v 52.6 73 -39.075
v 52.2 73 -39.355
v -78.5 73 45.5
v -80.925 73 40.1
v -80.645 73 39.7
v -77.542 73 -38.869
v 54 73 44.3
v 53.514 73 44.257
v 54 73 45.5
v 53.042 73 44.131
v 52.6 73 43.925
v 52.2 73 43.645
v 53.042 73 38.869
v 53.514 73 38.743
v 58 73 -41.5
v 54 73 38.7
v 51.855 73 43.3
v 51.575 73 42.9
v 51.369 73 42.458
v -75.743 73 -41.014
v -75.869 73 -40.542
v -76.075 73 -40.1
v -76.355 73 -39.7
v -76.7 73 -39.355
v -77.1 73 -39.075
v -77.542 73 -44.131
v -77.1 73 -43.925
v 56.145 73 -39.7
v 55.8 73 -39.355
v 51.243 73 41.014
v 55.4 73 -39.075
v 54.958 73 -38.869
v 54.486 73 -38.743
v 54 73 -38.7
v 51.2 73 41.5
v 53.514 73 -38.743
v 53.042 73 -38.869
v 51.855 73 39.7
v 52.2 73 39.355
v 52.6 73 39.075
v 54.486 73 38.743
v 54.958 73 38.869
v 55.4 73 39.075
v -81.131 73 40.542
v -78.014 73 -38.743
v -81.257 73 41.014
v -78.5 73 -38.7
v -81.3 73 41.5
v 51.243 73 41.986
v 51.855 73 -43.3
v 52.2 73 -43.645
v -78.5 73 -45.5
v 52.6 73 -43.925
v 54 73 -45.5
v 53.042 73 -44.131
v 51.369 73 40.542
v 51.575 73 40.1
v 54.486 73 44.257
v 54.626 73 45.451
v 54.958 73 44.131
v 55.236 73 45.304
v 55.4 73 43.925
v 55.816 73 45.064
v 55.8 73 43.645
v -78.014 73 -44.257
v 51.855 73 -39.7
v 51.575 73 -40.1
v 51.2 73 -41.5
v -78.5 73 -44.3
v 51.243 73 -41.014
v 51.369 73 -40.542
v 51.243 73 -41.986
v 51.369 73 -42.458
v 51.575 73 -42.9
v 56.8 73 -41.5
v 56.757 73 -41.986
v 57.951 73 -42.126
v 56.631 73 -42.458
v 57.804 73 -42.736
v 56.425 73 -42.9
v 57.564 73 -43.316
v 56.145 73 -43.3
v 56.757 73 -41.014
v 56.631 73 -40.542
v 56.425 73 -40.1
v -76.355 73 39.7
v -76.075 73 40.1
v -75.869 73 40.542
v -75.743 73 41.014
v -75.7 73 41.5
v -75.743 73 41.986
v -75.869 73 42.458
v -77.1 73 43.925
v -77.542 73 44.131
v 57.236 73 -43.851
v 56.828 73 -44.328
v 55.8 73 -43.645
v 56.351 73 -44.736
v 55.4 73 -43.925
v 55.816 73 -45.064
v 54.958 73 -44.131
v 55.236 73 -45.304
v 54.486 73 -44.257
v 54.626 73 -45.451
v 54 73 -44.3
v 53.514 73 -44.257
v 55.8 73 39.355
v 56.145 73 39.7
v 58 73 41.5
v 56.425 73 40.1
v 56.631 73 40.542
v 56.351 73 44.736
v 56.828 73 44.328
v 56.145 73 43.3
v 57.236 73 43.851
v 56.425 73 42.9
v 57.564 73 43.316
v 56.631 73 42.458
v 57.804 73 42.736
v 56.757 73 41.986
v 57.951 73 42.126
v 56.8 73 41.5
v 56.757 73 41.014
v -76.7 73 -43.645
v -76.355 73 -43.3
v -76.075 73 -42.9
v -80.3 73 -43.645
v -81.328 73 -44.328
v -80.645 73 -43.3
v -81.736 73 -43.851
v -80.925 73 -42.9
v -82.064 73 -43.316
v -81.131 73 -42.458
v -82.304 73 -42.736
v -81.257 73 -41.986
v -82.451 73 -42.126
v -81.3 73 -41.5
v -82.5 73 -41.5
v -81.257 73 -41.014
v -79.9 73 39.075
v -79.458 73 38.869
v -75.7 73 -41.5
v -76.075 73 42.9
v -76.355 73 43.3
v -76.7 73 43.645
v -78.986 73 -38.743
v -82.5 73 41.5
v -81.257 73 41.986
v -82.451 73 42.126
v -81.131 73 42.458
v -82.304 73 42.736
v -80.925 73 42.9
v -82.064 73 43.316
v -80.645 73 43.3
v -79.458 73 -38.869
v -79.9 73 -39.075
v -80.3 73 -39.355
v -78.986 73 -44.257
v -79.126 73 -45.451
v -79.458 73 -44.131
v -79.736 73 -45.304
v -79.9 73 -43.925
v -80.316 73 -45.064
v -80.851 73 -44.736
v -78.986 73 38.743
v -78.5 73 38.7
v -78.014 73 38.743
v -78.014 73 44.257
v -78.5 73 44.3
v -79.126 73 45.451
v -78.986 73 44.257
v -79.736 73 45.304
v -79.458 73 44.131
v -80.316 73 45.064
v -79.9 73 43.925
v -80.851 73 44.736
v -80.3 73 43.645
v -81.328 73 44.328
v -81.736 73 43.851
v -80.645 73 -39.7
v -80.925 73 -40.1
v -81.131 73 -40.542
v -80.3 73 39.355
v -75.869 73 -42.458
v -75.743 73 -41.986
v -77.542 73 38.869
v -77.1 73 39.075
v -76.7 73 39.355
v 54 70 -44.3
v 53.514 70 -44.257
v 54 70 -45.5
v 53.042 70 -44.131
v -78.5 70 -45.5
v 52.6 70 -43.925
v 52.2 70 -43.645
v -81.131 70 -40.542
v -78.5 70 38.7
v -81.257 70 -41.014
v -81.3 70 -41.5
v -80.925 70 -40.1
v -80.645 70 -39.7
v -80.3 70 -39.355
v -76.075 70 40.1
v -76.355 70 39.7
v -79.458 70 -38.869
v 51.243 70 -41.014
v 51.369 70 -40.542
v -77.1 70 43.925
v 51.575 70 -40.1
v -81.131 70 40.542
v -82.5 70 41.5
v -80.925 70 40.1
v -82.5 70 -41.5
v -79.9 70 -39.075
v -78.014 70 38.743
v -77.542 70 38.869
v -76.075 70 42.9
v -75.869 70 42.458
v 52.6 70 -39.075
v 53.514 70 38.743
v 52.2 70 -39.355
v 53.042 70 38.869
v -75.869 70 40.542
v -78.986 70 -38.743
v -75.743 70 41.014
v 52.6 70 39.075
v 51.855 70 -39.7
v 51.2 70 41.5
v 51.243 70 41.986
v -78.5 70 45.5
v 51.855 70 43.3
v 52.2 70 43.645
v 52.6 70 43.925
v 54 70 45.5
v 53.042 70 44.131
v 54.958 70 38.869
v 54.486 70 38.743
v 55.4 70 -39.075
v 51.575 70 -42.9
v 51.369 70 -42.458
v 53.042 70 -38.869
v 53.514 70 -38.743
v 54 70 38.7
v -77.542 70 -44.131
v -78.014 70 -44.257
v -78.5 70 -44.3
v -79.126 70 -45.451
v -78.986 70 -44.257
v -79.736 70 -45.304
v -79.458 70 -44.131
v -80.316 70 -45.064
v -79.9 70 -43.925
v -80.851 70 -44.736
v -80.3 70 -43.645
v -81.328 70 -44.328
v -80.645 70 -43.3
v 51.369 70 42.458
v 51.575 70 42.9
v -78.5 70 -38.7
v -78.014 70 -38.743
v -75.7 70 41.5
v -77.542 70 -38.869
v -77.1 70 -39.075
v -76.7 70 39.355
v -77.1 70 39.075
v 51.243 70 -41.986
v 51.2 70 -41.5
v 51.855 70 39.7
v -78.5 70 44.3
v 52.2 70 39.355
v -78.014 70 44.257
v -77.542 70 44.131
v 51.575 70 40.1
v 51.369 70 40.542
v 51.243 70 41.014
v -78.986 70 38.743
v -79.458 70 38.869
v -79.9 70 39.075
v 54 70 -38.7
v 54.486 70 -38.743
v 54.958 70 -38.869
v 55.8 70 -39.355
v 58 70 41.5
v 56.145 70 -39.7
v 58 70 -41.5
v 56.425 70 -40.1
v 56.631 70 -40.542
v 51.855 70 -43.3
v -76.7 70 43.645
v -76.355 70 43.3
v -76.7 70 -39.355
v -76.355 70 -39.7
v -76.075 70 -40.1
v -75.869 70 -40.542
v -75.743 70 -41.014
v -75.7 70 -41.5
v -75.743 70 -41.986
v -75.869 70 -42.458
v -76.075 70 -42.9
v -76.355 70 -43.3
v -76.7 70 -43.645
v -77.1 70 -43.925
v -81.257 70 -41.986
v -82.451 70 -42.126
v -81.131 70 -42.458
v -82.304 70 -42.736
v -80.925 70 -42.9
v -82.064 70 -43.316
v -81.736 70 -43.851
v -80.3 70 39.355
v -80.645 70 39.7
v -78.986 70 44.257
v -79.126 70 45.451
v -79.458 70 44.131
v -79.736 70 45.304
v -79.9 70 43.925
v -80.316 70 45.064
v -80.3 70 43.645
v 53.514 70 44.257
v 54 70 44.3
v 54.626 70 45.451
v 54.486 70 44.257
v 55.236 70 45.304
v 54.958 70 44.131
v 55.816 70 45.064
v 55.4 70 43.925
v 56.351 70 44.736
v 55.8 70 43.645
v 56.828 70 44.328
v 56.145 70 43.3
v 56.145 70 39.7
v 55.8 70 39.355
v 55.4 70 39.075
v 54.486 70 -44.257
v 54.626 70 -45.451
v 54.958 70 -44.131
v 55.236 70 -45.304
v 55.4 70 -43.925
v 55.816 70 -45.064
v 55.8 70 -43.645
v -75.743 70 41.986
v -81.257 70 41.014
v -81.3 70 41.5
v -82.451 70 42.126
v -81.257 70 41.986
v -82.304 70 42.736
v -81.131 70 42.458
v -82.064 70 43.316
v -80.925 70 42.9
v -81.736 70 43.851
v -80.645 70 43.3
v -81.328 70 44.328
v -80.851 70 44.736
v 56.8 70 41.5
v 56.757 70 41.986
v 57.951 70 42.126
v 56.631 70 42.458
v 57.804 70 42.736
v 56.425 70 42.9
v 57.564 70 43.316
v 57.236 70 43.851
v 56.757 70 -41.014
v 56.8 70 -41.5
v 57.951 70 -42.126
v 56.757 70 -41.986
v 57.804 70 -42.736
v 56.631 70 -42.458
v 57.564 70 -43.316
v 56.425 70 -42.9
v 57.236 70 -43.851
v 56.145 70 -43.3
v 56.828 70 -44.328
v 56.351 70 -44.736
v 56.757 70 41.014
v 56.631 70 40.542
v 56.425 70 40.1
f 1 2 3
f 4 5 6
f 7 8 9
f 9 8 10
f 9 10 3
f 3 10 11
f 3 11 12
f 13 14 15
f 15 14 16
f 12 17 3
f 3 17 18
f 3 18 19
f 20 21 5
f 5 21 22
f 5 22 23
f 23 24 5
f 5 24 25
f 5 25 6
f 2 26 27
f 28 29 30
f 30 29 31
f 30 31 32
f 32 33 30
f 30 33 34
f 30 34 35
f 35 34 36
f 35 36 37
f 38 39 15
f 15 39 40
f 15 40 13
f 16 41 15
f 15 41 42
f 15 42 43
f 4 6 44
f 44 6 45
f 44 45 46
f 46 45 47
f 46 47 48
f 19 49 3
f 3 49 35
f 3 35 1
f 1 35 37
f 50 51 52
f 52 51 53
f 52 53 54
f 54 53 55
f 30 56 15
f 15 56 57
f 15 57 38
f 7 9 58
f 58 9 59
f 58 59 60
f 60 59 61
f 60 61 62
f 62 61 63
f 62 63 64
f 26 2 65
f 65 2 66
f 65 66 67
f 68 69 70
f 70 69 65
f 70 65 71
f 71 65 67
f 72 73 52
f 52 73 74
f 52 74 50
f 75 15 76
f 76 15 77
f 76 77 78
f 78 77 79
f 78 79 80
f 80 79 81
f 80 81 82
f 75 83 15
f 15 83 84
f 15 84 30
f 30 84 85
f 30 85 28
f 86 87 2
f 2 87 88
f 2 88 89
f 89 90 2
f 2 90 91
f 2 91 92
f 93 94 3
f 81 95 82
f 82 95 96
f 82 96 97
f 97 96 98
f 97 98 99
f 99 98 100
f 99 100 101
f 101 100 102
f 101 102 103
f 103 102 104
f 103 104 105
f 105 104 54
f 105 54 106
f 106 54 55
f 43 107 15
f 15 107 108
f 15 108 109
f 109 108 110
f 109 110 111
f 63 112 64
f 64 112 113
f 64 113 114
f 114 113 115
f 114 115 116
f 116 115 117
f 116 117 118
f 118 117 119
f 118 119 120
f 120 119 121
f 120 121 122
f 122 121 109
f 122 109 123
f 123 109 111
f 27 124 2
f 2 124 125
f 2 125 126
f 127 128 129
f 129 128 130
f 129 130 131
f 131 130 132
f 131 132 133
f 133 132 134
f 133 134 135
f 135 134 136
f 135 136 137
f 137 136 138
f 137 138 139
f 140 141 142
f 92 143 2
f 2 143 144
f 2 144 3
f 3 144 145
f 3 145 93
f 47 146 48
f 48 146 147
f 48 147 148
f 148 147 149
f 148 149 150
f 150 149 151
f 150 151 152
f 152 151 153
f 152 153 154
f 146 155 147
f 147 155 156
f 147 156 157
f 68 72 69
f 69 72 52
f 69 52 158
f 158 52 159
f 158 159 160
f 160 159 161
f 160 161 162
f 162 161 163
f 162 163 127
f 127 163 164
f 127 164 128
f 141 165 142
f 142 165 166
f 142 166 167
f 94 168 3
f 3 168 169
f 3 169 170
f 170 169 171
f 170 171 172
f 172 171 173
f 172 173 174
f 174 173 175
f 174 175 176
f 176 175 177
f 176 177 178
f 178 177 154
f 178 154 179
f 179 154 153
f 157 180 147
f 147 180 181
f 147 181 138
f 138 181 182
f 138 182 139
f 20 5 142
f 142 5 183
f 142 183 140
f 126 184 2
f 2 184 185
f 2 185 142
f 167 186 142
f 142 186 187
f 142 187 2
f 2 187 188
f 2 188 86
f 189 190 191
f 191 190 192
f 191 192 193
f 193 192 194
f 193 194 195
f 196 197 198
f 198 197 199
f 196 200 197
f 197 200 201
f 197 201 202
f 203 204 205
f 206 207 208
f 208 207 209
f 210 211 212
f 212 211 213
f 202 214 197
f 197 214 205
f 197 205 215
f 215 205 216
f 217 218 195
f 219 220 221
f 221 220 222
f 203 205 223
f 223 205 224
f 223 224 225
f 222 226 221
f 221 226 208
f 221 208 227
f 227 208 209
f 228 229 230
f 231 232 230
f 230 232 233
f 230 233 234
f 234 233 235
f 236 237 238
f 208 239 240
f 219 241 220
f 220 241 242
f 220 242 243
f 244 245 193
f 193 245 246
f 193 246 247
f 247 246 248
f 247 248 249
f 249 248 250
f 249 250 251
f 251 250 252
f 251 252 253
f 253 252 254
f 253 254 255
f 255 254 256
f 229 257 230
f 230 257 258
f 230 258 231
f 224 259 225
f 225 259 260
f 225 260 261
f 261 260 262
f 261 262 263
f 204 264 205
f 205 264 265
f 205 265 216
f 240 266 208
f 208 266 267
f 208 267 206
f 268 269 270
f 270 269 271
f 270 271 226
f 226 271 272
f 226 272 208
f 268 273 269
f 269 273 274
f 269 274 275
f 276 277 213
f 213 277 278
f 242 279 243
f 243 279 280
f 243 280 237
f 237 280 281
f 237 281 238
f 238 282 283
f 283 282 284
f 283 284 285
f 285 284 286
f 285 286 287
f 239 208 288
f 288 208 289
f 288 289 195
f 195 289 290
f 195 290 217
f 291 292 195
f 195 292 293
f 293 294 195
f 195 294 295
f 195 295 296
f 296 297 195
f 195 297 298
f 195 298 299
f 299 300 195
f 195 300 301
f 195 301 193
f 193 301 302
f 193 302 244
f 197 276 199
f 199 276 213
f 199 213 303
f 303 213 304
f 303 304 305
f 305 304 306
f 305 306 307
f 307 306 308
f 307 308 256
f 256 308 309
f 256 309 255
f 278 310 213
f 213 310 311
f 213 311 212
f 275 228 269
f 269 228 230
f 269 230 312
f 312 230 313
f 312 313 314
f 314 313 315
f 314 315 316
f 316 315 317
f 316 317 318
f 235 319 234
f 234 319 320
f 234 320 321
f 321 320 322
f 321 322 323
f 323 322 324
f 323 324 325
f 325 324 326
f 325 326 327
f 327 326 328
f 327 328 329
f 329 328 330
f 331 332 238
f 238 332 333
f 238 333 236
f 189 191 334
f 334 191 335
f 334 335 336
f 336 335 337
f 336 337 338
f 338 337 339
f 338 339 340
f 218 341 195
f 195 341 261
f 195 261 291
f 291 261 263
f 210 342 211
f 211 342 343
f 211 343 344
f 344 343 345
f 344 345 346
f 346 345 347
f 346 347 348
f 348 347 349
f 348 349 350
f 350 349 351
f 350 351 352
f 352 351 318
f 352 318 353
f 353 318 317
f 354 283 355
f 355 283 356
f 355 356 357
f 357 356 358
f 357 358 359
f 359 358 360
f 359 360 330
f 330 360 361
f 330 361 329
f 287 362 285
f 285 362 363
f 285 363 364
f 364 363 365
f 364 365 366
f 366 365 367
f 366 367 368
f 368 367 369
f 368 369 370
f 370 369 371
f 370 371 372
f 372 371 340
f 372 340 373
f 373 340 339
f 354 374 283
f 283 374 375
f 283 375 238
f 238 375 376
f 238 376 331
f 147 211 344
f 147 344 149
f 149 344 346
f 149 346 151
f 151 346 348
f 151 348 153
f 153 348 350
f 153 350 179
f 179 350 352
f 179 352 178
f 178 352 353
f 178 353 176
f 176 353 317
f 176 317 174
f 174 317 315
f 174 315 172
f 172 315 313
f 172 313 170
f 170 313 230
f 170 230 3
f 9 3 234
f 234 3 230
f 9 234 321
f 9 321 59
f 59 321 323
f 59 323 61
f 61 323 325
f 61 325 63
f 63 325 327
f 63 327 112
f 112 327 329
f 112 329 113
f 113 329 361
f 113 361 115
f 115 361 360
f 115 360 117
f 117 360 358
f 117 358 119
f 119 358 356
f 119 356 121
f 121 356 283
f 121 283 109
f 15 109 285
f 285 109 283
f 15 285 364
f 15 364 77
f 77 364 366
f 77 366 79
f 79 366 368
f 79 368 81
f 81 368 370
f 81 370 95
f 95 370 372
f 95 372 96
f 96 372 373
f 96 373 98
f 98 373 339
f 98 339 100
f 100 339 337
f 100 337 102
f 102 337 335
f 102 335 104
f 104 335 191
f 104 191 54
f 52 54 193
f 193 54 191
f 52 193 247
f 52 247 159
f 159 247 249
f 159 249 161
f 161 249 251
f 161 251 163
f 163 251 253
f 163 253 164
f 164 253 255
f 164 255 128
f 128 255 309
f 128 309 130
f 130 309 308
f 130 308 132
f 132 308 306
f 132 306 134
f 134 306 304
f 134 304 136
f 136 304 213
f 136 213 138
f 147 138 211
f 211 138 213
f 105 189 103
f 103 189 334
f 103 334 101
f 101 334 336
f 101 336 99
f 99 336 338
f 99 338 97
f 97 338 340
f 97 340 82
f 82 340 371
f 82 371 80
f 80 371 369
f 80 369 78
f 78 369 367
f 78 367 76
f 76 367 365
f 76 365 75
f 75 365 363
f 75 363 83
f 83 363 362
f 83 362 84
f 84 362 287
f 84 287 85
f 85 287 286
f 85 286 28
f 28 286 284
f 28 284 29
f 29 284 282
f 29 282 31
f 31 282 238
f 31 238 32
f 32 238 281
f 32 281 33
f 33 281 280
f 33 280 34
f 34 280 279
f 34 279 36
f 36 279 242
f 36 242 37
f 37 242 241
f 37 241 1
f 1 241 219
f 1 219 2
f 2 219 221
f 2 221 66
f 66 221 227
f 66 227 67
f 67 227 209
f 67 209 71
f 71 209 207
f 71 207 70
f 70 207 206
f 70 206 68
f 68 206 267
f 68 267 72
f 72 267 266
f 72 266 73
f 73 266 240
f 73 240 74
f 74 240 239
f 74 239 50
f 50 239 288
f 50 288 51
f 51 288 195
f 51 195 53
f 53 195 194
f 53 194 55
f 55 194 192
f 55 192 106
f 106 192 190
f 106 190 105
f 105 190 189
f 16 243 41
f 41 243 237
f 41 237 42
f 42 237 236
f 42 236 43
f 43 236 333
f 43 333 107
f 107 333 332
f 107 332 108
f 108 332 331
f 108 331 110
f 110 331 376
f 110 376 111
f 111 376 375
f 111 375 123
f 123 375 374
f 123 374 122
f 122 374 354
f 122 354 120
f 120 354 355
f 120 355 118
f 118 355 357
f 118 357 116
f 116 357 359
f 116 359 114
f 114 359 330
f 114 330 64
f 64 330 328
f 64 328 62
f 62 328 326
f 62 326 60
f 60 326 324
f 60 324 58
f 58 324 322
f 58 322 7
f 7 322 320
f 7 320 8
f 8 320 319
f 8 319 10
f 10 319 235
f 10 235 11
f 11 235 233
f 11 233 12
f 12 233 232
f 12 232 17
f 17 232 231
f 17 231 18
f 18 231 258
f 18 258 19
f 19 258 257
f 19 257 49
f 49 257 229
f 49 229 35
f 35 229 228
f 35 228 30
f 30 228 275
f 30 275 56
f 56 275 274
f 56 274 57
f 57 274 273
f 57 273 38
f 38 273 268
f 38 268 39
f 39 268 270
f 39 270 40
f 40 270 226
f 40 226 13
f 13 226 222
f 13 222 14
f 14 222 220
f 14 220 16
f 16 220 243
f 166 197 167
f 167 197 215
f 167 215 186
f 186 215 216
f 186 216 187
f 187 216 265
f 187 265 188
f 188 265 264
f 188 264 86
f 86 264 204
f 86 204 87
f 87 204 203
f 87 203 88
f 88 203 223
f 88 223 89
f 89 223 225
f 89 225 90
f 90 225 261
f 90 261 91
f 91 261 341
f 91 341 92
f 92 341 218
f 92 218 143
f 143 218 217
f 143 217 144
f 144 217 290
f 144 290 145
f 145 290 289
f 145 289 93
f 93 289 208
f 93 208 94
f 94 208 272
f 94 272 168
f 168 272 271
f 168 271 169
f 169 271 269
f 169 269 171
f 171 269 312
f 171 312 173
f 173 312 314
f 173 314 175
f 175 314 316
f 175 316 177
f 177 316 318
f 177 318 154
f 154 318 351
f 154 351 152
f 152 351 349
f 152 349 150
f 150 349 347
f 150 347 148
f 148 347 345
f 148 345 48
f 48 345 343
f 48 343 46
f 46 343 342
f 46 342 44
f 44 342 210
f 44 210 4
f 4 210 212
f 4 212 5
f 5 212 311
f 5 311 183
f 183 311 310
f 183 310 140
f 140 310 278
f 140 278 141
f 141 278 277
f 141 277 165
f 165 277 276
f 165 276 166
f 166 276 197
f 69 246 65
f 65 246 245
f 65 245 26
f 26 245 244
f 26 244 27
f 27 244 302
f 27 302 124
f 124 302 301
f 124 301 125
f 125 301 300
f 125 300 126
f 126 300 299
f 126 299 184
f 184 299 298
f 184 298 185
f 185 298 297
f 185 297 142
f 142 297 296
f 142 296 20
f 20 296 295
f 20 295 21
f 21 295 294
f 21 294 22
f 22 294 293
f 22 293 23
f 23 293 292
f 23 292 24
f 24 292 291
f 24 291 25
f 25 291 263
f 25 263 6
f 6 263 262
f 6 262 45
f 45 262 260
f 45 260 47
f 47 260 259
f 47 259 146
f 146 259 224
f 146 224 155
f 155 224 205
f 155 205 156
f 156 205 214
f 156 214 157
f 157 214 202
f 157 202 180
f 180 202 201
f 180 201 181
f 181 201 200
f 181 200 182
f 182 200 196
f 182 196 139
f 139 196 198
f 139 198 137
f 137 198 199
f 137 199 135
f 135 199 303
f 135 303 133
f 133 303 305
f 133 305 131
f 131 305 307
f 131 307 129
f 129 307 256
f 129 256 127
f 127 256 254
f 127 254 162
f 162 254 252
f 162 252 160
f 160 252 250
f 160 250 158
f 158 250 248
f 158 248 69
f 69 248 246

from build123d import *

# Parameters (mm, degrees)
SKETCH1_W                 = 134.5
SKETCH1_H                 = 85
BOSS_EXTRUDE1_DEPTH       = 3
SKETCH2_W                 = 140.5
SKETCH2_H                 = 91
SKETCH2_W_2               = 134.5
SKETCH2_H_2               = 85
BOSS_EXTRUDE2_DEPTH       = 70
BOSS_EXTRUDE3_START       = 5
SKETCH3_W                 = 100
SKETCH3_H                 = 80
BOSS_EXTRUDE3_DEPTH       = 5
SKETCH5_W                 = 3
SKETCH5_H                 = 66
BOSS_EXTRUDE5_DEPTH       = 30
SKETCH6_R                 = 3
SKETCH6_R_2               = 1
BOSS_EXTRUDE6_DEPTH       = 10
SKETCH7_W                 = 100
SKETCH7_H                 = 80
CUT_EXTRUDE2_DEPTH        = 10
SKETCH6_2_R               = 3
SKETCH6_2_R_2             = 1
BOSS_EXTRUDE7_DEPTH       = 8
MIRROR4_COPY_1_SKETCH_R   = 3
MIRROR4_COPY_1_SKETCH_R_2 = 1
MIRROR4_COPY_1_DEPTH      = 8
SKETCH9_R                 = 26.15
SKETCH9_W                 = 29.3
SKETCH9_H                 = 26.2
SKETCH9_R_2               = 1
SKETCH9_R_3               = 3.4
SKETCH9_R_4               = 7.9
CUT_EXTRUDE3_DEPTH        = 3
SKETCH10_R                = 2.95
SKETCH10_R_2              = 5.9
CUT_EXTRUDE4_DEPTH        = 3
BOSS_EXTRUDE8_DEPTH       = 7
FILLET1_R                 = 4
CUT_EXTRUDE6_DEPTH        = 5
SKETCH14_R                = 2.8
BOSS_EXTRUDE9_DEPTH       = 3


with BuildPart() as part:
    # Sketch1 → Boss-Extrude1 (new body)
    with BuildSketch(Plane(origin=(0, 0, 0), x_dir=(1, 0, 0), z_dir=(0, 1, 0))):
        with Locations((-12.25, 0)):
            Rectangle(SKETCH1_W, SKETCH1_H)
    extrude(amount=BOSS_EXTRUDE1_DEPTH)

    # Sketch2 → Boss-Extrude2 (add)
    with BuildSketch(Plane(origin=(0, 0, 0), x_dir=(1, 0, 0), z_dir=(0, 1, 0))):
        with Locations((-12.25, 0)):
            Rectangle(SKETCH2_W, SKETCH2_H)
        with Locations((-12.25, 0)):
            Rectangle(SKETCH2_W_2, SKETCH2_H_2, mode=Mode.SUBTRACT)
    extrude(amount=BOSS_EXTRUDE2_DEPTH)

    # Sketch5 → Boss-Extrude5 (add)
    with BuildSketch(Plane(origin=(0, 3, 0), x_dir=(1, 0, 0), z_dir=(0, 1, 0))):
        Polygon((-58, -26.5), (-58, -23.5), (-61, -23.5), (-79.5, -23.5), (-79.5, -26.5), align=None)
        with Locations((-59.5, 9.5)):
            Rectangle(SKETCH5_W, SKETCH5_H)
    extrude(amount=BOSS_EXTRUDE5_DEPTH)



with BuildPart() as body_2:
    # Sketch3 → Boss-Extrude3 (new body)
    with BuildSketch(Plane(origin=(0, 3, 0), x_dir=(1, 0, 0), z_dir=(0, 1, 0)).offset(BOSS_EXTRUDE3_START)):
        Rectangle(SKETCH3_W, SKETCH3_H)
    extrude(amount=BOSS_EXTRUDE3_DEPTH)


with BuildPart() as part_1:
    add(part.part)

    add(body_2.part)  # Boss-Extrude6 merges body 2
    # Sketch6 → Boss-Extrude6 (add)
    with BuildSketch(Plane(origin=(0, 3, 0), x_dir=(1, 0, 0), z_dir=(0, 1, 0))):
        with Locations((-45, -35)):
            Circle(SKETCH6_R)
        with Locations((-45, -35)):
            Circle(SKETCH6_R_2, mode=Mode.SUBTRACT)
    extrude(amount=BOSS_EXTRUDE6_DEPTH)

    # Sketch7 → Cut-Extrude2 (cut)
    with BuildSketch(Plane(origin=(0, 13, 0), x_dir=(1, 0, 0), z_dir=(0, 1, 0))):
        Rectangle(SKETCH7_W, SKETCH7_H)
    extrude(amount=-CUT_EXTRUDE2_DEPTH, mode=Mode.SUBTRACT)

    # Sketch6<2> → Boss-Extrude7 (add)
    with BuildSketch(Plane(origin=(0, 3, 0), x_dir=(1, 0, 0), z_dir=(0, 1, 0))):
        with Locations((-45, -35)):
            Circle(SKETCH6_2_R)
        with Locations((-45, -35)):
            Circle(SKETCH6_2_R_2, mode=Mode.SUBTRACT)
    boss_extrude7 = extrude(amount=BOSS_EXTRUDE7_DEPTH)

    # Mirror3: Boss-Extrude7 across plane
    add(boss_extrude7.mirror(Plane.XY))

    # Mirror4: Boss-Extrude7 across plane
    add(boss_extrude7.mirror(Plane(origin=(0, 0, 0), x_dir=(0, 0, 1), z_dir=(1, 0, 0))))

    # Mirror4 copy 1 sketch → Mirror4 copy 1 (add)
    with BuildSketch(Plane(origin=(0, 3, 0), x_dir=(-1, 0, 0), z_dir=(0, 1, 0))):
        with Locations((-45, -35)):
            Circle(MIRROR4_COPY_1_SKETCH_R)
        with Locations((-45, -35)):
            Circle(MIRROR4_COPY_1_SKETCH_R_2, mode=Mode.SUBTRACT)
    extrude(amount=MIRROR4_COPY_1_DEPTH)

    # Sketch9 → Cut-Extrude3 (cut)
    with BuildSketch(Plane.XY.offset(45.5)):
        with Locations((23, 40.85)):
            Circle(SKETCH9_R)
        with Locations((-47.5, 50)):
            Rectangle(SKETCH9_W, SKETCH9_H)
        with Locations((1.786796564, 62.063203436)):
            Circle(SKETCH9_R_2)
        with Locations((44.213203436, 62.063203436)):
            Circle(SKETCH9_R_2)
        with Locations((44.213203436, 19.636796564)):
            Circle(SKETCH9_R_2)
        with Locations((1.786796564, 19.636796564)):
            Circle(SKETCH9_R_2)
        with Locations((-58.75, 21.9)):
            Circle(SKETCH9_R_3)
        with Locations((-40.75, 21.9)):
            Circle(SKETCH9_R_4)
    extrude(amount=-CUT_EXTRUDE3_DEPTH, mode=Mode.SUBTRACT)

    # Sketch10 → Cut-Extrude4 (cut)
    with BuildSketch(Plane(origin=(58, 0, 0), x_dir=(0, 0, -1), z_dir=(1, 0, 0))):
        with Locations((15.5, 55)):
            Circle(SKETCH10_R)
        with Locations((30.5, 55)):
            Circle(SKETCH10_R_2)
    extrude(amount=-CUT_EXTRUDE4_DEPTH, mode=Mode.SUBTRACT)

    # Sketch11 → Boss-Extrude8 (add)
    with BuildSketch(Plane(origin=(0, 70, 0), x_dir=(1, 0, 0), z_dir=(0, 1, 0))):
        Polygon((-74.5, 42.5), (-79.5, 42.5), (-79.5, 37.5), align=None)
        Polygon((55, 37.5), (55, 42.5), (50, 42.5), align=None)
        Polygon((50, -42.5), (55, -42.5), (55, -37.5), align=None)
        Polygon((-79.5, -37.5), (-79.5, -42.5), (-74.5, -42.5), align=None)
    extrude(amount=-BOSS_EXTRUDE8_DEPTH)

    # Fillet1
    fillet1_edges = [part_1.edges().sort_by_distance(p)[0] for p in [
        (58, 35, 45.5),
        (58, 35, -45.5),
        (-82.5, 35, -45.5),
        (-82.5, 35, 45.5),
    ]]
    fillet(fillet1_edges, radius=FILLET1_R)

    # Sketch13 → Cut-Extrude6 (cut)
    with BuildSketch(Plane(origin=(0, 70, 0), x_dir=(1, 0, 0), z_dir=(0, 1, 0))):
        with BuildLine():
            ThreePointArc((55.371320344, 42.871320344), (53.957106781, 42.871320344), (53.957106781, 41.457106781))
            Line((53.957106781, 41.457106781), (55.371320344, 42.871320344))
        make_face()
        with BuildLine():
            Line((55.371320344, 42.871320344), (53.957106781, 41.457106781))
            ThreePointArc((53.957106781, 41.457106781), (55.046896995, 41.24033403), (55.664213562, 42.164213562))
            ThreePointArc((55.664213562, 42.164213562), (55.588093095, 42.546896995), (55.371320344, 42.871320344))
        make_face()
        with BuildLine():
            ThreePointArc((53.957106781, -41.457106781), (53.957106781, -42.871320344), (55.371320344, -42.871320344))
            Line((55.371320344, -42.871320344), (53.957106781, -41.457106781))
        make_face()
        with BuildLine():
            Line((53.957106781, -41.457106781), (55.371320344, -42.871320344))
            ThreePointArc((55.371320344, -42.871320344), (55.588093095, -42.546896995), (55.664213562, -42.164213562))
            ThreePointArc((55.664213562, -42.164213562), (55.046896995, -41.24033403), (53.957106781, -41.457106781))
        make_face()
        with BuildLine():
            ThreePointArc((-78.164213562, -42.164213562), (-78.24033403, -41.78153013), (-78.457106781, -41.457106781))
            Line((-78.457106781, -41.457106781), (-79.871320344, -42.871320344))
            ThreePointArc((-79.871320344, -42.871320344), (-78.78153013, -43.088093095), (-78.164213562, -42.164213562))
        make_face()
        with BuildLine():
            Line((-79.871320344, -42.871320344), (-78.457106781, -41.457106781))
            ThreePointArc((-78.457106781, -41.457106781), (-79.871320344, -41.457106781), (-79.871320344, -42.871320344))
        make_face()
        with BuildLine():
            ThreePointArc((-78.164213562, 42.164213562), (-78.78153013, 43.088093095), (-79.871320344, 42.871320344))
            Line((-79.871320344, 42.871320344), (-78.457106781, 41.457106781))
            ThreePointArc((-78.457106781, 41.457106781), (-78.24033403, 41.78153013), (-78.164213562, 42.164213562))
        make_face()
        with BuildLine():
            Line((-78.457106781, 41.457106781), (-79.871320344, 42.871320344))
            ThreePointArc((-79.871320344, 42.871320344), (-79.871320344, 41.457106781), (-78.457106781, 41.457106781))
        make_face()
    extrude(amount=-CUT_EXTRUDE6_DEPTH, mode=Mode.SUBTRACT)


with BuildPart() as body_2_2:
    # Sketch14 → Boss-Extrude9 (new body)
    with BuildSketch(Plane(origin=(0, 70, 0), x_dir=(1, 0, 0), z_dir=(0, 1, 0))):
        with BuildLine():
            Line((-78.5, -45.5), (54, -45.5))
            ThreePointArc((54, -45.5), (56.828427125, -44.328427125), (58, -41.5))
            Line((58, -41.5), (58, 41.5))
            ThreePointArc((58, 41.5), (56.828427125, 44.328427125), (54, 45.5))
            Line((54, 45.5), (-78.5, 45.5))
            ThreePointArc((-78.5, 45.5), (-81.328427125, 44.328427125), (-82.5, 41.5))
            Line((-82.5, 41.5), (-82.5, -41.5))
            ThreePointArc((-82.5, -41.5), (-81.328427125, -44.328427125), (-78.5, -45.5))
        make_face()
        with Locations((-78.5, 41.5)):
            Circle(SKETCH14_R, mode=Mode.SUBTRACT)
        with Locations((54, 41.5)):
            Circle(SKETCH14_R, mode=Mode.SUBTRACT)
        with Locations((54, -41.5)):
            Circle(SKETCH14_R, mode=Mode.SUBTRACT)
        with Locations((-78.5, -41.5)):
            Circle(SKETCH14_R, mode=Mode.SUBTRACT)
    extrude(amount=BOSS_EXTRUDE9_DEPTH)


solid = body_2_2.part
